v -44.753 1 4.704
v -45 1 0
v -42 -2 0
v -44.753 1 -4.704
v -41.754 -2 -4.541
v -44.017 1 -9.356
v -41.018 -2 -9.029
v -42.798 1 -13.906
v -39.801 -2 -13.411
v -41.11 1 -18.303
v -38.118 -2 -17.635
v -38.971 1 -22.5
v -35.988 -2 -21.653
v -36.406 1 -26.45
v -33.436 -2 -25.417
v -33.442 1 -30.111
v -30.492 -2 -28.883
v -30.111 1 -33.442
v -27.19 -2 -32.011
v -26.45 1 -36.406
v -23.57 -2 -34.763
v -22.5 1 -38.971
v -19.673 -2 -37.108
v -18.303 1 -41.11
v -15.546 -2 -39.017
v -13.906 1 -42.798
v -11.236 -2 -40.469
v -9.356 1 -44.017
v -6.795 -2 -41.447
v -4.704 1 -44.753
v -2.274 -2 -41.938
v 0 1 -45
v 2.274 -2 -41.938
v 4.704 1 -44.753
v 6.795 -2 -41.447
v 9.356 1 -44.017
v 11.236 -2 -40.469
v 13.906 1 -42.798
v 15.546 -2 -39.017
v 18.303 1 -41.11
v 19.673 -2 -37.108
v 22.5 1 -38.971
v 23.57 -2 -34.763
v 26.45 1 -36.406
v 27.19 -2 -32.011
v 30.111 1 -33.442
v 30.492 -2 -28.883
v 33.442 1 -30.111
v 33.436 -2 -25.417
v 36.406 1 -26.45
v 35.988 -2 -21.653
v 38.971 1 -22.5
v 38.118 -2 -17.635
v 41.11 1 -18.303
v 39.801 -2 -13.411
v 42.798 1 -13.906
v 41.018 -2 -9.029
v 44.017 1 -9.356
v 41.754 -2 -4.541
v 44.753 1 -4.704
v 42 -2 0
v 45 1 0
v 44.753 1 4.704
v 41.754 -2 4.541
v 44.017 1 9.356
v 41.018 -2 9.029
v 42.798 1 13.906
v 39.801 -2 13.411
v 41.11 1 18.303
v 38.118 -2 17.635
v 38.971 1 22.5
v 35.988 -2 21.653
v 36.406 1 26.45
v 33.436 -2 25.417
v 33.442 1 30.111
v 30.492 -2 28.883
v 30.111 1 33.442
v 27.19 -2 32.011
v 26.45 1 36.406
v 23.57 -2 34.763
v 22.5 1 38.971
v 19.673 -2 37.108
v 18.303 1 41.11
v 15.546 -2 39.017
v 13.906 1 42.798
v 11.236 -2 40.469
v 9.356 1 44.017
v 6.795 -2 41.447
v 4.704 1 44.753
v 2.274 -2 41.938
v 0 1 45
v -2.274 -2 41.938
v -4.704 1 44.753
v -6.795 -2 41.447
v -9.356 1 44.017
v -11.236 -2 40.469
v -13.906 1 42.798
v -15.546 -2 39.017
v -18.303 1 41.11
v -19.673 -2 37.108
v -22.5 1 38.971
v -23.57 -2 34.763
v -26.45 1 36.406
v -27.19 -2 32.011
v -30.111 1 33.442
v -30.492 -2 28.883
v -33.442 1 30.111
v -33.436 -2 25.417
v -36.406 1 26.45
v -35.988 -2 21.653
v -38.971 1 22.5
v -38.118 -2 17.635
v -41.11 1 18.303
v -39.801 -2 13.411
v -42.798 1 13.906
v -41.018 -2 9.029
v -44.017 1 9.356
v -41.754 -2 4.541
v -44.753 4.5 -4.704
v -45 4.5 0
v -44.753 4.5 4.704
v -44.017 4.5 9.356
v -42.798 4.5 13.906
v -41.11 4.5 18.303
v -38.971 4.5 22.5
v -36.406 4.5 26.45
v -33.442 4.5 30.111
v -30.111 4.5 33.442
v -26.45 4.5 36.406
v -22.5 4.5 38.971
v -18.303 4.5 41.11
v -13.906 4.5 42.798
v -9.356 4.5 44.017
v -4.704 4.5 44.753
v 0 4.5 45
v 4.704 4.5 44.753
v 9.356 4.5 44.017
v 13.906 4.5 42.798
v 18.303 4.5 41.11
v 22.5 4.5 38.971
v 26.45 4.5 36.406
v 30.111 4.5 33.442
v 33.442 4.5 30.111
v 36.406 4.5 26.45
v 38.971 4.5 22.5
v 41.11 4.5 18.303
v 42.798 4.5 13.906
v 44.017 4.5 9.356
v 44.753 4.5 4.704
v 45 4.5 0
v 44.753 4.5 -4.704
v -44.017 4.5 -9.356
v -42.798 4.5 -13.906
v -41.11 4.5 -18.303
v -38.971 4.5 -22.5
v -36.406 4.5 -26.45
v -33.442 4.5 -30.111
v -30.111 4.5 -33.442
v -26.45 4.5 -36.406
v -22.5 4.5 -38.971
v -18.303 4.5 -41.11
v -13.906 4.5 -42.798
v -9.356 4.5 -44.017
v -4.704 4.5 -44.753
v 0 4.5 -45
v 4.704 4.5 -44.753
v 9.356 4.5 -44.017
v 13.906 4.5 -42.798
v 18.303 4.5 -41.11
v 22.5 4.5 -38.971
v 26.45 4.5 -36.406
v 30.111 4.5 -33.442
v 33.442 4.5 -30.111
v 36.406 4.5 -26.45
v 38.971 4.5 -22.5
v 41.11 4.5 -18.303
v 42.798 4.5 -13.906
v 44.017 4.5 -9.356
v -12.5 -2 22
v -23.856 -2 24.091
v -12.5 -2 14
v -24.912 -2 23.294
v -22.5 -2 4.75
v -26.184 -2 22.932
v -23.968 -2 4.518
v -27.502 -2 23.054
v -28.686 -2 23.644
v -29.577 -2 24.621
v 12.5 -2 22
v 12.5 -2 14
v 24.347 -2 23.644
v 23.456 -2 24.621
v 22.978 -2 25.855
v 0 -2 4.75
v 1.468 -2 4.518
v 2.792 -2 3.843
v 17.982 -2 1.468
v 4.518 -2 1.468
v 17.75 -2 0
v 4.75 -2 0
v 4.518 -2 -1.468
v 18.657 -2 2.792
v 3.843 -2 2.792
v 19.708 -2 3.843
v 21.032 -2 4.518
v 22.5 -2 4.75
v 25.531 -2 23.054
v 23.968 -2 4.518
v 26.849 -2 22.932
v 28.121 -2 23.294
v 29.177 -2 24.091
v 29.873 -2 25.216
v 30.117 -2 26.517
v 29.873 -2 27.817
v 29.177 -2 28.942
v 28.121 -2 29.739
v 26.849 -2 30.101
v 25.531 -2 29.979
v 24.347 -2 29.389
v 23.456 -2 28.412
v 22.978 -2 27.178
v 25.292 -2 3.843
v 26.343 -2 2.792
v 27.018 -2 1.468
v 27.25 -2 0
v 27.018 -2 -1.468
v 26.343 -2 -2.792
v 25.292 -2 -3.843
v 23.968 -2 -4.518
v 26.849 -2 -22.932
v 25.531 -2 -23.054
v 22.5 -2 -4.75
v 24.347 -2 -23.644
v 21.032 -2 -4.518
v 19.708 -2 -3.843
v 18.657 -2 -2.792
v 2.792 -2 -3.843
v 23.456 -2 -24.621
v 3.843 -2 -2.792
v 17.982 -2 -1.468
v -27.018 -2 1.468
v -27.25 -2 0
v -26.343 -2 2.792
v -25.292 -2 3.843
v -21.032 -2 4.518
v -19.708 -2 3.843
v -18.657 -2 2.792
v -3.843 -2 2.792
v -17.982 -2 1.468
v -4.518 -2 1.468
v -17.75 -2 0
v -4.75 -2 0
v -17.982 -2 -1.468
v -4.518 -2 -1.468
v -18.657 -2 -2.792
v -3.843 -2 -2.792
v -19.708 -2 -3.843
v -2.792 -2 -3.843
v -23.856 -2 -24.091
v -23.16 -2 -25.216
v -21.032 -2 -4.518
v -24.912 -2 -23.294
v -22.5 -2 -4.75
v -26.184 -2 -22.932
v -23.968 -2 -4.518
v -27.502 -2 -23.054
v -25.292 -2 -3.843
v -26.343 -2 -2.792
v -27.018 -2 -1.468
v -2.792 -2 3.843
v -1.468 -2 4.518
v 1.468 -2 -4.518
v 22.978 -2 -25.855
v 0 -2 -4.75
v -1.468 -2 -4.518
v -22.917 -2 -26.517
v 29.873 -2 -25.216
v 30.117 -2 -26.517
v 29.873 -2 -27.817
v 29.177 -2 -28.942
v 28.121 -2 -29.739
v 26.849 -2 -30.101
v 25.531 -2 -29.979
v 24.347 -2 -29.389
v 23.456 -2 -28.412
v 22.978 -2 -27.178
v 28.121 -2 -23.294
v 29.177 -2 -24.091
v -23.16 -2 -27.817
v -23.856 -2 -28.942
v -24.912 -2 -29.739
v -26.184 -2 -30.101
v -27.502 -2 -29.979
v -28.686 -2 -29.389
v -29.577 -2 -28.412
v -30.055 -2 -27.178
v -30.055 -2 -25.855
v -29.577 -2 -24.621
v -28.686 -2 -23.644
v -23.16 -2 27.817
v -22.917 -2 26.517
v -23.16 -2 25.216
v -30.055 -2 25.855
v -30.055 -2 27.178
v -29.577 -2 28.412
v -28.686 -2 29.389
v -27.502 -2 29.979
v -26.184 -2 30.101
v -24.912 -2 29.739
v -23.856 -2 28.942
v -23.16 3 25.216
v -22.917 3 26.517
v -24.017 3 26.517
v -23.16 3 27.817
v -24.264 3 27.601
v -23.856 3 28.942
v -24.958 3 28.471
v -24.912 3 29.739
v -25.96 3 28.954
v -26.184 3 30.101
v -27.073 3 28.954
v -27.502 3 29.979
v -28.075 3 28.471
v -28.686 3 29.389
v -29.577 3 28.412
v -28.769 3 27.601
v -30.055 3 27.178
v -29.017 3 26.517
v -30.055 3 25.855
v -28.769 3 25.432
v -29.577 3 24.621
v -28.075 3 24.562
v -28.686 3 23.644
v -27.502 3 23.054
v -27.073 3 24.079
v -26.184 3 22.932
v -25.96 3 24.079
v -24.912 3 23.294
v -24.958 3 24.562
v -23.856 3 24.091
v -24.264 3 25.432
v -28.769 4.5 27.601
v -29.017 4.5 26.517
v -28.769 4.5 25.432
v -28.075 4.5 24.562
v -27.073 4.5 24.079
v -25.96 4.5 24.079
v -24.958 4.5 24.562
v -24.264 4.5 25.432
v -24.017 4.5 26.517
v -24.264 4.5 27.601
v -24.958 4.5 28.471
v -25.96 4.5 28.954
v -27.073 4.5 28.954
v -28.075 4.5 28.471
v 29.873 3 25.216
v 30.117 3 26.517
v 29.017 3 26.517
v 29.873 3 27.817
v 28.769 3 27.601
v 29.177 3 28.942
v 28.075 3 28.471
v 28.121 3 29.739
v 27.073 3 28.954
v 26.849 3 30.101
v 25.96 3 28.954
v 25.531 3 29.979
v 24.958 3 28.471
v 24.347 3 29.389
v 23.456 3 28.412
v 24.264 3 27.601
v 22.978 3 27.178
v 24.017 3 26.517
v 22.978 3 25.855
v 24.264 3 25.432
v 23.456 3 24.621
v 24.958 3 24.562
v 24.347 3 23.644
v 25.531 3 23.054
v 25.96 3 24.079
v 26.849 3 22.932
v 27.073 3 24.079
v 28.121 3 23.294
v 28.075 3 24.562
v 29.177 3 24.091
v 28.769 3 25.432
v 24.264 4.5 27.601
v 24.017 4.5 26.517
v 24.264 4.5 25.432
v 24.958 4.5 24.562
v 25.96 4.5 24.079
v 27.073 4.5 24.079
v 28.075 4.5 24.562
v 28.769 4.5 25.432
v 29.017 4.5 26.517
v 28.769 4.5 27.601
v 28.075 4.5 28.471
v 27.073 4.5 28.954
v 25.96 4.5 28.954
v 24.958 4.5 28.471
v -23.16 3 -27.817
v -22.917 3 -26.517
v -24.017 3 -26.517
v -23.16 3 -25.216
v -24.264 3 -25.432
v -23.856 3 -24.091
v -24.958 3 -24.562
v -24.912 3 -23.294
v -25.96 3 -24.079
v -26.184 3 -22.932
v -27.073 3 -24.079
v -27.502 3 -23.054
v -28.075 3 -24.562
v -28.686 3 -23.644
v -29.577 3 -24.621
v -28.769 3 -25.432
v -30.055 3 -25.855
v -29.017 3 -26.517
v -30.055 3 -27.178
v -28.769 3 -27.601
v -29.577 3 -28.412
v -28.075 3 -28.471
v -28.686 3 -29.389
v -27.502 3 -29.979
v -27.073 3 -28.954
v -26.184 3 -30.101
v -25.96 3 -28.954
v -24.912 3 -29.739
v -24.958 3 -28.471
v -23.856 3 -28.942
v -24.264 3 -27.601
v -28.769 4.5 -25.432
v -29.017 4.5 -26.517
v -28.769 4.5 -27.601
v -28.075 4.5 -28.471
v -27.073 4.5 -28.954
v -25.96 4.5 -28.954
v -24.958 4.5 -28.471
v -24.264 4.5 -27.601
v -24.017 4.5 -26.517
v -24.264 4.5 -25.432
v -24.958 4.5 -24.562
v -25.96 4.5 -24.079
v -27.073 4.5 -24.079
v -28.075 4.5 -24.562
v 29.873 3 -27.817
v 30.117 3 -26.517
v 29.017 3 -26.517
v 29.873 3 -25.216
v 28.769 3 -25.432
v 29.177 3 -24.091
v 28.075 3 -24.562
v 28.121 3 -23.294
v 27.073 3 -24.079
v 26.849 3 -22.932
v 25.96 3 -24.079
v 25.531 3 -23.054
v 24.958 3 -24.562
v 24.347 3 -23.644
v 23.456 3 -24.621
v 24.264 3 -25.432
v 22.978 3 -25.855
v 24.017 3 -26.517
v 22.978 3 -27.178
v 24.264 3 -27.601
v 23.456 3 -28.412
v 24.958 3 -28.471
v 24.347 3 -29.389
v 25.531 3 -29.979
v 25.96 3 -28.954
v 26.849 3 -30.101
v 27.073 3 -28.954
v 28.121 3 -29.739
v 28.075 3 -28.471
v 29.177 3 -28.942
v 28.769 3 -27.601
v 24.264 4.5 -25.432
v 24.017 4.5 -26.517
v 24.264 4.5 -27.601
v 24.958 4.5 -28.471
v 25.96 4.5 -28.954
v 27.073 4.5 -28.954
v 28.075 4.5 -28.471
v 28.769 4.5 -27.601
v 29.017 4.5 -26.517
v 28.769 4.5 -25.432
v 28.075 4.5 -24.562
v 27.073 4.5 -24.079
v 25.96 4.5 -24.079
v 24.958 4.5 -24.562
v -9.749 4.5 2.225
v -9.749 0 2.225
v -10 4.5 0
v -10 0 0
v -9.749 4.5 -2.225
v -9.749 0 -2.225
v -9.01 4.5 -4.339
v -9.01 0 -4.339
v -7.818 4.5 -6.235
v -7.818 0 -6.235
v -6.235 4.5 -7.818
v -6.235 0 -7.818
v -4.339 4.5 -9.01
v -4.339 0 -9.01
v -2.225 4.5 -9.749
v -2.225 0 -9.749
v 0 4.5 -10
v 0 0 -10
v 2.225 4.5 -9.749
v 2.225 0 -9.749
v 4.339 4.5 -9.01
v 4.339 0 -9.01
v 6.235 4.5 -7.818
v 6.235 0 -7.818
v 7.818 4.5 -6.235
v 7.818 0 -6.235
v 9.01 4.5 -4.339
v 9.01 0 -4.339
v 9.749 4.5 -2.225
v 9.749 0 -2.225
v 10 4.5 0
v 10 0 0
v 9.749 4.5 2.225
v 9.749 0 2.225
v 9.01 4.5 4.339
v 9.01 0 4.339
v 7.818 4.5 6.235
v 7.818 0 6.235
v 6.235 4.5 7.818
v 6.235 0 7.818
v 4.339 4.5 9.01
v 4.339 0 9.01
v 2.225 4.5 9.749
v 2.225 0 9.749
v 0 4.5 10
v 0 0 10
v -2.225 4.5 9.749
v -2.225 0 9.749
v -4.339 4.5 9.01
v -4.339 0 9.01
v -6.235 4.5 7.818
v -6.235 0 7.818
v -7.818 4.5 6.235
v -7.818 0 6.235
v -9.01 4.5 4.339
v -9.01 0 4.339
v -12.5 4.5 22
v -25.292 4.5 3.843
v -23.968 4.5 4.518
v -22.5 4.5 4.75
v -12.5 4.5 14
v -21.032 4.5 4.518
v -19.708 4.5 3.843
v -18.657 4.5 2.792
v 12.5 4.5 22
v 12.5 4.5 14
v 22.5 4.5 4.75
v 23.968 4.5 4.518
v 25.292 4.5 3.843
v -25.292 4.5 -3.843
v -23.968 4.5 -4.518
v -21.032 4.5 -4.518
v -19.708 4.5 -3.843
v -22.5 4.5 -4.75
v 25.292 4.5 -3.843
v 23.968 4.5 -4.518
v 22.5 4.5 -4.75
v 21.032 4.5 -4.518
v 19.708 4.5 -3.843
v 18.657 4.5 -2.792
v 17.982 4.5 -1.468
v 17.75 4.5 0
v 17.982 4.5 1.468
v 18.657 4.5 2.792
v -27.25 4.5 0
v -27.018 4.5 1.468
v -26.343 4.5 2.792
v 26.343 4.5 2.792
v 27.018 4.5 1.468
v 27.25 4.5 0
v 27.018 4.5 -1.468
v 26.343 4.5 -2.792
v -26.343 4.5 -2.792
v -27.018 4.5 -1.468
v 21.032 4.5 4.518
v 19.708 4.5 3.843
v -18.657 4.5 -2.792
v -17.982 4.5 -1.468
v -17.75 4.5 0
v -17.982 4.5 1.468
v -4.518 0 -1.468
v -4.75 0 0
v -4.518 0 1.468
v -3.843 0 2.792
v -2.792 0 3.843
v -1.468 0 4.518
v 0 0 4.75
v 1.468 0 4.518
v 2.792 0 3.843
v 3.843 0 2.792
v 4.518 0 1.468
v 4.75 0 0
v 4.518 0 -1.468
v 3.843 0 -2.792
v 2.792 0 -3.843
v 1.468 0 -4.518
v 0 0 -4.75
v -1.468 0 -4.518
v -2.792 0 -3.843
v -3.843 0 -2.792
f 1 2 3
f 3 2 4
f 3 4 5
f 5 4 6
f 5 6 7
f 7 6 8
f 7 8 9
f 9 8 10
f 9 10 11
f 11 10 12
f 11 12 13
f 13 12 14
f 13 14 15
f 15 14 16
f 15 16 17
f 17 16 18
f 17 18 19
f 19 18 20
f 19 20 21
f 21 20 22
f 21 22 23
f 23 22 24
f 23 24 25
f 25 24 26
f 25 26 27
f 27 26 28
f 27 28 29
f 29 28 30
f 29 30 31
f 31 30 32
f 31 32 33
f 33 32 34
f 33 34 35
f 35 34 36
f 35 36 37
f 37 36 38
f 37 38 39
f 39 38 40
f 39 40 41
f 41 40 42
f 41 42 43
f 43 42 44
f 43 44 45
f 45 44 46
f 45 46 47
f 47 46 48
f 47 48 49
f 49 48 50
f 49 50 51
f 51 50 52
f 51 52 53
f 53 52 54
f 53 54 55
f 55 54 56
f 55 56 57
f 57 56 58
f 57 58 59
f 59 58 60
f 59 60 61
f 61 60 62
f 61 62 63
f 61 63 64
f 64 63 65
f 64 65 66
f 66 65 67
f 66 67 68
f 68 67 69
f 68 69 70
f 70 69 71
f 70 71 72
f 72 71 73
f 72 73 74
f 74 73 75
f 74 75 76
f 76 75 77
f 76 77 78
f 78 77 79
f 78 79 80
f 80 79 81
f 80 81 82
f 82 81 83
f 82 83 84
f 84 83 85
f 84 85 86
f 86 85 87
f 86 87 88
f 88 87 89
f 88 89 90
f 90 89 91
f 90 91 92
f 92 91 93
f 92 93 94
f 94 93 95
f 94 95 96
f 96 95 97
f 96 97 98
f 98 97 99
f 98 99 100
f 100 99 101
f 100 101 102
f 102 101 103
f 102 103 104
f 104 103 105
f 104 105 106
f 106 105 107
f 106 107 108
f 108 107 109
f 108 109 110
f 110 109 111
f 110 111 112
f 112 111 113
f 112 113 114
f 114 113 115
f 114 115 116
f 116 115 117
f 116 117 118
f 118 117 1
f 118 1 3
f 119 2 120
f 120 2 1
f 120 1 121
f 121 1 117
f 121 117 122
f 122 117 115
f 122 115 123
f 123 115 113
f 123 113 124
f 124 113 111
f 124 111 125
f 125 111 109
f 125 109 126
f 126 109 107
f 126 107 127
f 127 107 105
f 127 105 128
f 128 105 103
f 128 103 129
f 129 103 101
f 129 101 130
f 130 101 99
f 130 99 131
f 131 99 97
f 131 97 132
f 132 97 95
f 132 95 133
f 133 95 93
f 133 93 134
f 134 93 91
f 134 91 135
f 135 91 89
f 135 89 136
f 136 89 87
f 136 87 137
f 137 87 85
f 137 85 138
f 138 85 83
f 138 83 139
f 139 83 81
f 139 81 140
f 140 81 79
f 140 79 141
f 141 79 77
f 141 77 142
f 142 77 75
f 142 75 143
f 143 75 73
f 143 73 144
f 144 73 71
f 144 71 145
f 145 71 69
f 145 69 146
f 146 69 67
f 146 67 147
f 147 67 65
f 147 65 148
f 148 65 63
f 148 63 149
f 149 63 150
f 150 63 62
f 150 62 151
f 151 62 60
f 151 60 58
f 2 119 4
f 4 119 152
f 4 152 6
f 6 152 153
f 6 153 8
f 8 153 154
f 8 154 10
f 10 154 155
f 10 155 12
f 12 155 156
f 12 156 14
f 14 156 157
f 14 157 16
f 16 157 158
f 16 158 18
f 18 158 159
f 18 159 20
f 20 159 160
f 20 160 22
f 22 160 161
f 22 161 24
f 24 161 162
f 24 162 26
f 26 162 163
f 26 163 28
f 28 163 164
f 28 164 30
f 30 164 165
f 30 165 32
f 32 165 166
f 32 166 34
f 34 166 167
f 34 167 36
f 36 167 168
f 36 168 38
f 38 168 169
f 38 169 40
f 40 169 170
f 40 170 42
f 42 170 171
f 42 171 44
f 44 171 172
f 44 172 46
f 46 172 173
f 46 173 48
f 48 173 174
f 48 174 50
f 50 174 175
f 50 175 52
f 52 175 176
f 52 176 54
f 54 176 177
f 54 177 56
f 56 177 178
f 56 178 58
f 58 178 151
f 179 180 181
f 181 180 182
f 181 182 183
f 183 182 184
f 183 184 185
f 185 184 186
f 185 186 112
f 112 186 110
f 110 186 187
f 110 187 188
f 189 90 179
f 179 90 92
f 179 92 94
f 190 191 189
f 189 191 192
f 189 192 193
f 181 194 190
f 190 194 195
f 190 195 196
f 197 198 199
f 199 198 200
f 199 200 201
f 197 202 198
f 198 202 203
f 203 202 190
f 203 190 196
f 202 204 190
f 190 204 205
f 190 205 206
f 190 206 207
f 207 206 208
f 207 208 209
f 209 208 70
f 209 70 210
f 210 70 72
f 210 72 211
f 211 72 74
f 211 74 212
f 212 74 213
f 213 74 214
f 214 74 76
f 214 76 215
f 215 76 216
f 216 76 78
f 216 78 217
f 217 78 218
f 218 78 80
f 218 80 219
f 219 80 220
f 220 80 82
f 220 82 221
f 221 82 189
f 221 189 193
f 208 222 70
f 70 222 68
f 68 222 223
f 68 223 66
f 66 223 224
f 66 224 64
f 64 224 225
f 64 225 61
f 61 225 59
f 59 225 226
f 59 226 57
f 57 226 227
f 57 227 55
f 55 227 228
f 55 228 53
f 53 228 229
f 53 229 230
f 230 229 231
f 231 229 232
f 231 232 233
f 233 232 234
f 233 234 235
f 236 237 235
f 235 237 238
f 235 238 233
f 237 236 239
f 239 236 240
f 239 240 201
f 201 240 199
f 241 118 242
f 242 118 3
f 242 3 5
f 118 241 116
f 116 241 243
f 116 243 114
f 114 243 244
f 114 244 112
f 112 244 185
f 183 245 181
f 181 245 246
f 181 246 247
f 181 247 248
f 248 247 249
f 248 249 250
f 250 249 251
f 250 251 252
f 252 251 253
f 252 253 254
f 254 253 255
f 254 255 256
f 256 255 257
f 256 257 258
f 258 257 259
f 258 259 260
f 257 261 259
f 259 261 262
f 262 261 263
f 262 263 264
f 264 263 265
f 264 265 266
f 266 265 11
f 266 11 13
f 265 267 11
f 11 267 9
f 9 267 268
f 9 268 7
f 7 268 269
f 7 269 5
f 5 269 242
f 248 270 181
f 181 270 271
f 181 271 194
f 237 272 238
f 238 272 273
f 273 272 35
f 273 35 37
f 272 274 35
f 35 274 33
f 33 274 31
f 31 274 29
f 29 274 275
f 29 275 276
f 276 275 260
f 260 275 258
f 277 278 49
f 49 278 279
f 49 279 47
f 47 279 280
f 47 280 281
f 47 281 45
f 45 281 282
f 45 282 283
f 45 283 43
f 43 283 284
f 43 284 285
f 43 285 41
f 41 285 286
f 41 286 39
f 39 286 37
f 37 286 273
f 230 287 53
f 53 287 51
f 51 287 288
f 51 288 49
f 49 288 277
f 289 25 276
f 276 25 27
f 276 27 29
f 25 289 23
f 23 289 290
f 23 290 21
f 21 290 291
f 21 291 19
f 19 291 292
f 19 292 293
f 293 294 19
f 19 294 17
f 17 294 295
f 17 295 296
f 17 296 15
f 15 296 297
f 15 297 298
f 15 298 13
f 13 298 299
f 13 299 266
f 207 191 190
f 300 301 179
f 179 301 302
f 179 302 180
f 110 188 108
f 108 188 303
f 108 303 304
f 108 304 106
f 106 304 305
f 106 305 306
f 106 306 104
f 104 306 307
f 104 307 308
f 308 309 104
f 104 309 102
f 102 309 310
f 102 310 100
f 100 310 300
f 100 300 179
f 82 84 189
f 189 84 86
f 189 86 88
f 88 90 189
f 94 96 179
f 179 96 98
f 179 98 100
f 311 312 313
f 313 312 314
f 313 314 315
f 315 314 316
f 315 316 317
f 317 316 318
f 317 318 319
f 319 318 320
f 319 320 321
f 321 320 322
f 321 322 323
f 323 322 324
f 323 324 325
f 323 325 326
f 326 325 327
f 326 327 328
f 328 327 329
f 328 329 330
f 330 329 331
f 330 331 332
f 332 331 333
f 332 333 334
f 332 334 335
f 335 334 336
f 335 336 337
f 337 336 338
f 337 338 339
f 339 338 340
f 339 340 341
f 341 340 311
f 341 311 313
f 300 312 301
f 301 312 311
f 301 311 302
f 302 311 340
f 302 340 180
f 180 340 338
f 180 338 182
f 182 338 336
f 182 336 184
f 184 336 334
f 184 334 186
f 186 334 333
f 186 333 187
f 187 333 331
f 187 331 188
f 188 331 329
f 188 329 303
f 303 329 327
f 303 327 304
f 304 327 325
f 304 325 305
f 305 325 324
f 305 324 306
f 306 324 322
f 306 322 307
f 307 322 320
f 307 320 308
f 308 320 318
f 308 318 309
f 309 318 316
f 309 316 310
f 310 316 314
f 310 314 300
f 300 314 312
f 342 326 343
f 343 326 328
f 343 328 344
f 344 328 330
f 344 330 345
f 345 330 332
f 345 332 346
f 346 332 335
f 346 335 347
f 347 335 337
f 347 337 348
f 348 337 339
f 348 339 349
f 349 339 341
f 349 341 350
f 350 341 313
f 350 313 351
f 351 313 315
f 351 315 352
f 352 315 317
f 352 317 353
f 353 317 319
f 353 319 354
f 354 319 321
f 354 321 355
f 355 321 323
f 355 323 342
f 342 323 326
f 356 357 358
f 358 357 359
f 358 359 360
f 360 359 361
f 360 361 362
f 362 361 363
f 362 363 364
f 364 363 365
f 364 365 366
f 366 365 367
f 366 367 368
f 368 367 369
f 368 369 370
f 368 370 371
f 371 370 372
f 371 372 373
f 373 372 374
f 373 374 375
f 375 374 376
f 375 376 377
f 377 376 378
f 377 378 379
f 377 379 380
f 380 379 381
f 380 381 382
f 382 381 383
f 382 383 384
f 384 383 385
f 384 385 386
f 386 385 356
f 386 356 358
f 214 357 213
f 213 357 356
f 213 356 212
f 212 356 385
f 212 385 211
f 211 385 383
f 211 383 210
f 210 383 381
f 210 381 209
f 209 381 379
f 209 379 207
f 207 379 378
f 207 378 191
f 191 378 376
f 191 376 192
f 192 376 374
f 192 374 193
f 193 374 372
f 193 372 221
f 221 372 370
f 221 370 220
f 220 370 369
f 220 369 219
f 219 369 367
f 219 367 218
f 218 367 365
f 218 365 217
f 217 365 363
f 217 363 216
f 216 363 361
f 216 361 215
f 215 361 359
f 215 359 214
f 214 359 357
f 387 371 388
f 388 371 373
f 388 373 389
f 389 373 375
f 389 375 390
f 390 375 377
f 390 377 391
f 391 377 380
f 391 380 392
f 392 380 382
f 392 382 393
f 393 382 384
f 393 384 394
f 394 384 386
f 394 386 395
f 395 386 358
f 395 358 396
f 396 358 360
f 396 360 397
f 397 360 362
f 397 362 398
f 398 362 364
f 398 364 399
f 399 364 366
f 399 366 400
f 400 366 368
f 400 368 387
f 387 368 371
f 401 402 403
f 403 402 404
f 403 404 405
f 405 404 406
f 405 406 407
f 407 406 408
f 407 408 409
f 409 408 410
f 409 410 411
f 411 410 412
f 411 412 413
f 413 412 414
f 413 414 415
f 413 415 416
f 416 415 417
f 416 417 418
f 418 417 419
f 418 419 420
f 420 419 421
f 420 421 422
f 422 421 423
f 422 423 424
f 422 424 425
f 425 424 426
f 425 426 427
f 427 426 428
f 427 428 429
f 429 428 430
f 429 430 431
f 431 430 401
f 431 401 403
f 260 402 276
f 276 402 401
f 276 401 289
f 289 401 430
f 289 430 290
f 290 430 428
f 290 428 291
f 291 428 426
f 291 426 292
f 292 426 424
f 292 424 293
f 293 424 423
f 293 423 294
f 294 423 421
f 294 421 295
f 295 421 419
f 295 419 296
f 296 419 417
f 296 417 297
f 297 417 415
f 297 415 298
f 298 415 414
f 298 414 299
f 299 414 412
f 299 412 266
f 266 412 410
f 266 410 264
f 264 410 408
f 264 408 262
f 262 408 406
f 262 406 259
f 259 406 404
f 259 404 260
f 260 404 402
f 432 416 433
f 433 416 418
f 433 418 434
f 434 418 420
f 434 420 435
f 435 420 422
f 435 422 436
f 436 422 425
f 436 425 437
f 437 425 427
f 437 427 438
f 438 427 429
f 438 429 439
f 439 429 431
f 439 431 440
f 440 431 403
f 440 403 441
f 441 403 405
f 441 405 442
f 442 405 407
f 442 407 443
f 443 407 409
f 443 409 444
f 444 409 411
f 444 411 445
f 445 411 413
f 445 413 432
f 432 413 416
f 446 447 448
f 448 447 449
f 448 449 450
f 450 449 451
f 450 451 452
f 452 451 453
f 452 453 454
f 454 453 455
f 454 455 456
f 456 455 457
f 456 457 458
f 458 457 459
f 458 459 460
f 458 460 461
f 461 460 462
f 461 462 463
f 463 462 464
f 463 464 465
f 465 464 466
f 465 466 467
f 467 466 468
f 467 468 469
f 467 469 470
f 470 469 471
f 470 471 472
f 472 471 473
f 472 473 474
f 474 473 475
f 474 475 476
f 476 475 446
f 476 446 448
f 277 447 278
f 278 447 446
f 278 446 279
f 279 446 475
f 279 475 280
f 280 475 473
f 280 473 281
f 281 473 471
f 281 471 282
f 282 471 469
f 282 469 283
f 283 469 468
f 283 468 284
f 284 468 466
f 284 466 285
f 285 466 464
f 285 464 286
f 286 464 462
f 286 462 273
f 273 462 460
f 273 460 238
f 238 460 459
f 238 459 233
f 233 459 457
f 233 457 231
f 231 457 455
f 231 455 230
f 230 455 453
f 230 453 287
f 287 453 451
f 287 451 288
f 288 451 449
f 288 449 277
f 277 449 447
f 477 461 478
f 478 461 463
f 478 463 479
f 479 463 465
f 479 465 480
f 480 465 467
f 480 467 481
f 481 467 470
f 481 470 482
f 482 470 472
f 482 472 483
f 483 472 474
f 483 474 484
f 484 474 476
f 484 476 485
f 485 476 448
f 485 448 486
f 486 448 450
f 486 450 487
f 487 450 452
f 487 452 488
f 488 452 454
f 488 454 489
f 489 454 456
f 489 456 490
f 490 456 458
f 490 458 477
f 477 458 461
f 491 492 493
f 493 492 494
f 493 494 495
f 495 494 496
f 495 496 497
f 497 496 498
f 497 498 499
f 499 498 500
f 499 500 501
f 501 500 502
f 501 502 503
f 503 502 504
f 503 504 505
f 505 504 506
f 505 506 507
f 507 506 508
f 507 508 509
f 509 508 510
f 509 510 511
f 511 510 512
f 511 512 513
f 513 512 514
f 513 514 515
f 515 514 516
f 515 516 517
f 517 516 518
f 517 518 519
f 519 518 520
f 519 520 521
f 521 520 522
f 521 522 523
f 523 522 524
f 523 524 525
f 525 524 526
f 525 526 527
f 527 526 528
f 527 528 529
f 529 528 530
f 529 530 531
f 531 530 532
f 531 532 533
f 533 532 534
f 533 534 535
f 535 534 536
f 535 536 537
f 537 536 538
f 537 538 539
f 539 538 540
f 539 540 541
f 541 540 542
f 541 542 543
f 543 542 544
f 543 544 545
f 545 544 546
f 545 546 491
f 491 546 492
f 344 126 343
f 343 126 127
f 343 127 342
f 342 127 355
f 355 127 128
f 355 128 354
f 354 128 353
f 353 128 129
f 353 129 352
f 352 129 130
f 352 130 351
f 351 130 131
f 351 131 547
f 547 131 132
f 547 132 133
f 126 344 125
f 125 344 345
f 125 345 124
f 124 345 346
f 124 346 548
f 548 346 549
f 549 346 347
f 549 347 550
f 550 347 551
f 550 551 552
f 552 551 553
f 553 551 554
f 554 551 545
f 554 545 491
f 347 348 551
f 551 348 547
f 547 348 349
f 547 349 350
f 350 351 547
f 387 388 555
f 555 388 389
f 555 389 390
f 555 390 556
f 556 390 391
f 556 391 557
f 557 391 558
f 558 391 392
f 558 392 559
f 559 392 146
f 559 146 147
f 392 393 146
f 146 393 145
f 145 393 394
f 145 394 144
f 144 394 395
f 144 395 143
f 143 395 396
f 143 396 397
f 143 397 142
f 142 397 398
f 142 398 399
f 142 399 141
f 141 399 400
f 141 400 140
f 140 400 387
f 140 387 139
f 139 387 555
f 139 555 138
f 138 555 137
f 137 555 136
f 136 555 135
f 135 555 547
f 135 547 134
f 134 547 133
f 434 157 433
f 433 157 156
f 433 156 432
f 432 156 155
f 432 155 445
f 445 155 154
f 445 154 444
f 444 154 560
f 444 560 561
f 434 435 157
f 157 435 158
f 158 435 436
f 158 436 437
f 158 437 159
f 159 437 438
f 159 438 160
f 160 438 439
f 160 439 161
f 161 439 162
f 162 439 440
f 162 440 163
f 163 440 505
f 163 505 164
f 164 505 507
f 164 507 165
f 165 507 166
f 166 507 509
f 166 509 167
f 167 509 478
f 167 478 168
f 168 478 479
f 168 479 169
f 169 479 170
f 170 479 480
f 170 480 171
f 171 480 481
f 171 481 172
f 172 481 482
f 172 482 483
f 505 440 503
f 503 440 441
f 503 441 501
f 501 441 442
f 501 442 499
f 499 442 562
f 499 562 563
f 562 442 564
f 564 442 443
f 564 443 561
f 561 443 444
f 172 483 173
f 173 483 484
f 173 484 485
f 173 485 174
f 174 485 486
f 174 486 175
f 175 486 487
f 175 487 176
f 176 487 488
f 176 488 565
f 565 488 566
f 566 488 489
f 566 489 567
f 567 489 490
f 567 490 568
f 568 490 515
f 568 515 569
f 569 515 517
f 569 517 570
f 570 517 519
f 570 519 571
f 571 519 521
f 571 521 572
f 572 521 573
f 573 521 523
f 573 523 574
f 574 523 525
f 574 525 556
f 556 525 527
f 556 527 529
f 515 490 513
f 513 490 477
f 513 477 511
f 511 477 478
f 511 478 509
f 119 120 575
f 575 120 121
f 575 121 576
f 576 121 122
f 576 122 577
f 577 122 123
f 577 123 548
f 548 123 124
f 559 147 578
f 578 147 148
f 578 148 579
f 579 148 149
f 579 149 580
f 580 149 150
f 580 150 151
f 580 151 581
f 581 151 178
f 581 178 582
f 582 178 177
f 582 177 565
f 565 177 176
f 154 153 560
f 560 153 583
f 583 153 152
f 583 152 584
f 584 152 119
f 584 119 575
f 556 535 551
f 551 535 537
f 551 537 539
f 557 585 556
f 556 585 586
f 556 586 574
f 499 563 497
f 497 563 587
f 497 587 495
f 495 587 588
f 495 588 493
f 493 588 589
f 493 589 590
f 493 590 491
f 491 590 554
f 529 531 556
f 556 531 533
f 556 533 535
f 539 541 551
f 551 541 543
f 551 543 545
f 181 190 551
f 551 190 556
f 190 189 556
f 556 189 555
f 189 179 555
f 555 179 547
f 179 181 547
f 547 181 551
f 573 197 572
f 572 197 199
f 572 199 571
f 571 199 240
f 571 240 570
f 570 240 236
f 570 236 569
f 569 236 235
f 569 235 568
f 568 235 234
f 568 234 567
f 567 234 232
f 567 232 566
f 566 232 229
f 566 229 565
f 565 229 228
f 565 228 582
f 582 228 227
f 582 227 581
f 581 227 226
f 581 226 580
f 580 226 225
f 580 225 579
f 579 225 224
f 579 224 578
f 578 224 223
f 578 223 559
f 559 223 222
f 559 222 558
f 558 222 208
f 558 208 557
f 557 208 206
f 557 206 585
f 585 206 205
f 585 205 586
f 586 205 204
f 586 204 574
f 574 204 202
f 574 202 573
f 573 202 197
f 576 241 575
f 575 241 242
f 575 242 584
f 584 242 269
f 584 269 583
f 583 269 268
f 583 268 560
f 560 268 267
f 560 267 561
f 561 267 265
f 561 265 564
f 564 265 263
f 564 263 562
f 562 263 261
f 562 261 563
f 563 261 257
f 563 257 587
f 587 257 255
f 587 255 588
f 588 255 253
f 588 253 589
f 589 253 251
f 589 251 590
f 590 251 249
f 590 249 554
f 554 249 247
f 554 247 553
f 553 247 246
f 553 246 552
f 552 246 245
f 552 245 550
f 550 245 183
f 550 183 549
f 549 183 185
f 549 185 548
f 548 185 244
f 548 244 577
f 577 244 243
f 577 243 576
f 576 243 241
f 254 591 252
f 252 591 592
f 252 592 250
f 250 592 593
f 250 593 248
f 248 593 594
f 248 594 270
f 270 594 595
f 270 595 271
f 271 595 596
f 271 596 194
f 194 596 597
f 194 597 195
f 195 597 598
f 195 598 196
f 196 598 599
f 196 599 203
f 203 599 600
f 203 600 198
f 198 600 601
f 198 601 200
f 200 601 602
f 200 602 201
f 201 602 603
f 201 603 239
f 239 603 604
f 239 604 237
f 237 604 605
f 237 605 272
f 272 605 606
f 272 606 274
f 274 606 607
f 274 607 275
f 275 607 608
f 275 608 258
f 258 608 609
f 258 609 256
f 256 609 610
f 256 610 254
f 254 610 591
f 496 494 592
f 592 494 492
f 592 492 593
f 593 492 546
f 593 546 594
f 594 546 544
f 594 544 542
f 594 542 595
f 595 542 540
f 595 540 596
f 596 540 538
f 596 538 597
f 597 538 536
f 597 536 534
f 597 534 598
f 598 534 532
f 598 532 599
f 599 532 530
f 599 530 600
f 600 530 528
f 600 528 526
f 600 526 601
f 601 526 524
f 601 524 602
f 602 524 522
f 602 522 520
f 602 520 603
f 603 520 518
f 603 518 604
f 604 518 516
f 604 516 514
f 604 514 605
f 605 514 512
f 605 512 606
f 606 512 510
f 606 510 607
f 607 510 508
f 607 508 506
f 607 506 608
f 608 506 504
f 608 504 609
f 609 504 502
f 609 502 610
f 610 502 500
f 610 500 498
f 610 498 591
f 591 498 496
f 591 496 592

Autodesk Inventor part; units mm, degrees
ref_plane "YZ Plane" through (0, 0, 0) normal (1, 0, 0) x (0, 1, 0)
ref_plane "XZ Plane" through (0, 0, 0) normal (0, 1, 0) x (-1, 0, 0)
ref_plane "XY Plane" through (0, 0, 0) normal (0, 0, 1) x (1, 0, 0)
sketch "Sketch1" plane through (0, 0, 0) normal (0, 1, 0) x (-1, 0, 0)
  circle A0 centre (0, 0) radius 45
  circle A1 centre (0, 0) radius 10
  circle A2 centre (22.5, 0) radius 4.75
  circle A3 centre (-22.5, 0) radius 4.75
  line L0 (0, -25.6154) -> (0, 19.3488) construction
  circle A4 centre (0, 0) radius 4.75
  line L1 (12.5, 22) -> (-12.5, 22)
  line L2 (-12.5, 22) -> (-12.5, 14)
  line L3 (-12.5, 14) -> (12.5, 14)
  line L4 (12.5, 14) -> (12.5, 22)
  line L5 (12.5, 22) -> (-12.5, 14) construction
  line L6 (-12.5, 22) -> (12.5, 14) construction
  point P0 (0, 18)
  dimension "d0" = 90
  dimension "d1" = 20
  dimension "d2" = 45
  dimension "d20" = 18
  dimension "d21" = 8
  dimension "d22" = 25
  dimension "d26" = 9.5
extrude "Extrusion1" add sketch "Sketch1" against normal blind 2 contours A0 | A1
extrude "Extrusion2" add sketch "Sketch1" along normal blind 4.5 contours A0
sketch "Sketch2" plane through (0, -2, 0) normal (0, -1, 0) x (1, 0, 0)
  line L0 (26.5165, -26.5165) -> (0, 0) construction
  line L1 (17.2429, 0) -> (-14.3285, 0) construction
  line L2 (0, -10.0849) -> (0, 10.0849) construction
  point P0 (-26.5165, -26.5165)
  point P1 (26.5165, 26.5165)
  point P2 (-26.5165, 26.5165)
  dimension "d9" = 37.5
  dimension "d10" = 45
hole "Hole1" at (26.5165, -2, -26.5165) at (-26.5165, -2, -26.5165) at (26.5165, -2, 26.5165) at (-26.5165, -2, 26.5165) direction (0, 1, 0) diameter 5 end through all counterbore diameter 7.2 counterbore depth 5
chamfer "Chamfer1" distance 3 angle 45 1 edges at (45, -2, 0)
properties part number "SCARA swivel top - lid"
